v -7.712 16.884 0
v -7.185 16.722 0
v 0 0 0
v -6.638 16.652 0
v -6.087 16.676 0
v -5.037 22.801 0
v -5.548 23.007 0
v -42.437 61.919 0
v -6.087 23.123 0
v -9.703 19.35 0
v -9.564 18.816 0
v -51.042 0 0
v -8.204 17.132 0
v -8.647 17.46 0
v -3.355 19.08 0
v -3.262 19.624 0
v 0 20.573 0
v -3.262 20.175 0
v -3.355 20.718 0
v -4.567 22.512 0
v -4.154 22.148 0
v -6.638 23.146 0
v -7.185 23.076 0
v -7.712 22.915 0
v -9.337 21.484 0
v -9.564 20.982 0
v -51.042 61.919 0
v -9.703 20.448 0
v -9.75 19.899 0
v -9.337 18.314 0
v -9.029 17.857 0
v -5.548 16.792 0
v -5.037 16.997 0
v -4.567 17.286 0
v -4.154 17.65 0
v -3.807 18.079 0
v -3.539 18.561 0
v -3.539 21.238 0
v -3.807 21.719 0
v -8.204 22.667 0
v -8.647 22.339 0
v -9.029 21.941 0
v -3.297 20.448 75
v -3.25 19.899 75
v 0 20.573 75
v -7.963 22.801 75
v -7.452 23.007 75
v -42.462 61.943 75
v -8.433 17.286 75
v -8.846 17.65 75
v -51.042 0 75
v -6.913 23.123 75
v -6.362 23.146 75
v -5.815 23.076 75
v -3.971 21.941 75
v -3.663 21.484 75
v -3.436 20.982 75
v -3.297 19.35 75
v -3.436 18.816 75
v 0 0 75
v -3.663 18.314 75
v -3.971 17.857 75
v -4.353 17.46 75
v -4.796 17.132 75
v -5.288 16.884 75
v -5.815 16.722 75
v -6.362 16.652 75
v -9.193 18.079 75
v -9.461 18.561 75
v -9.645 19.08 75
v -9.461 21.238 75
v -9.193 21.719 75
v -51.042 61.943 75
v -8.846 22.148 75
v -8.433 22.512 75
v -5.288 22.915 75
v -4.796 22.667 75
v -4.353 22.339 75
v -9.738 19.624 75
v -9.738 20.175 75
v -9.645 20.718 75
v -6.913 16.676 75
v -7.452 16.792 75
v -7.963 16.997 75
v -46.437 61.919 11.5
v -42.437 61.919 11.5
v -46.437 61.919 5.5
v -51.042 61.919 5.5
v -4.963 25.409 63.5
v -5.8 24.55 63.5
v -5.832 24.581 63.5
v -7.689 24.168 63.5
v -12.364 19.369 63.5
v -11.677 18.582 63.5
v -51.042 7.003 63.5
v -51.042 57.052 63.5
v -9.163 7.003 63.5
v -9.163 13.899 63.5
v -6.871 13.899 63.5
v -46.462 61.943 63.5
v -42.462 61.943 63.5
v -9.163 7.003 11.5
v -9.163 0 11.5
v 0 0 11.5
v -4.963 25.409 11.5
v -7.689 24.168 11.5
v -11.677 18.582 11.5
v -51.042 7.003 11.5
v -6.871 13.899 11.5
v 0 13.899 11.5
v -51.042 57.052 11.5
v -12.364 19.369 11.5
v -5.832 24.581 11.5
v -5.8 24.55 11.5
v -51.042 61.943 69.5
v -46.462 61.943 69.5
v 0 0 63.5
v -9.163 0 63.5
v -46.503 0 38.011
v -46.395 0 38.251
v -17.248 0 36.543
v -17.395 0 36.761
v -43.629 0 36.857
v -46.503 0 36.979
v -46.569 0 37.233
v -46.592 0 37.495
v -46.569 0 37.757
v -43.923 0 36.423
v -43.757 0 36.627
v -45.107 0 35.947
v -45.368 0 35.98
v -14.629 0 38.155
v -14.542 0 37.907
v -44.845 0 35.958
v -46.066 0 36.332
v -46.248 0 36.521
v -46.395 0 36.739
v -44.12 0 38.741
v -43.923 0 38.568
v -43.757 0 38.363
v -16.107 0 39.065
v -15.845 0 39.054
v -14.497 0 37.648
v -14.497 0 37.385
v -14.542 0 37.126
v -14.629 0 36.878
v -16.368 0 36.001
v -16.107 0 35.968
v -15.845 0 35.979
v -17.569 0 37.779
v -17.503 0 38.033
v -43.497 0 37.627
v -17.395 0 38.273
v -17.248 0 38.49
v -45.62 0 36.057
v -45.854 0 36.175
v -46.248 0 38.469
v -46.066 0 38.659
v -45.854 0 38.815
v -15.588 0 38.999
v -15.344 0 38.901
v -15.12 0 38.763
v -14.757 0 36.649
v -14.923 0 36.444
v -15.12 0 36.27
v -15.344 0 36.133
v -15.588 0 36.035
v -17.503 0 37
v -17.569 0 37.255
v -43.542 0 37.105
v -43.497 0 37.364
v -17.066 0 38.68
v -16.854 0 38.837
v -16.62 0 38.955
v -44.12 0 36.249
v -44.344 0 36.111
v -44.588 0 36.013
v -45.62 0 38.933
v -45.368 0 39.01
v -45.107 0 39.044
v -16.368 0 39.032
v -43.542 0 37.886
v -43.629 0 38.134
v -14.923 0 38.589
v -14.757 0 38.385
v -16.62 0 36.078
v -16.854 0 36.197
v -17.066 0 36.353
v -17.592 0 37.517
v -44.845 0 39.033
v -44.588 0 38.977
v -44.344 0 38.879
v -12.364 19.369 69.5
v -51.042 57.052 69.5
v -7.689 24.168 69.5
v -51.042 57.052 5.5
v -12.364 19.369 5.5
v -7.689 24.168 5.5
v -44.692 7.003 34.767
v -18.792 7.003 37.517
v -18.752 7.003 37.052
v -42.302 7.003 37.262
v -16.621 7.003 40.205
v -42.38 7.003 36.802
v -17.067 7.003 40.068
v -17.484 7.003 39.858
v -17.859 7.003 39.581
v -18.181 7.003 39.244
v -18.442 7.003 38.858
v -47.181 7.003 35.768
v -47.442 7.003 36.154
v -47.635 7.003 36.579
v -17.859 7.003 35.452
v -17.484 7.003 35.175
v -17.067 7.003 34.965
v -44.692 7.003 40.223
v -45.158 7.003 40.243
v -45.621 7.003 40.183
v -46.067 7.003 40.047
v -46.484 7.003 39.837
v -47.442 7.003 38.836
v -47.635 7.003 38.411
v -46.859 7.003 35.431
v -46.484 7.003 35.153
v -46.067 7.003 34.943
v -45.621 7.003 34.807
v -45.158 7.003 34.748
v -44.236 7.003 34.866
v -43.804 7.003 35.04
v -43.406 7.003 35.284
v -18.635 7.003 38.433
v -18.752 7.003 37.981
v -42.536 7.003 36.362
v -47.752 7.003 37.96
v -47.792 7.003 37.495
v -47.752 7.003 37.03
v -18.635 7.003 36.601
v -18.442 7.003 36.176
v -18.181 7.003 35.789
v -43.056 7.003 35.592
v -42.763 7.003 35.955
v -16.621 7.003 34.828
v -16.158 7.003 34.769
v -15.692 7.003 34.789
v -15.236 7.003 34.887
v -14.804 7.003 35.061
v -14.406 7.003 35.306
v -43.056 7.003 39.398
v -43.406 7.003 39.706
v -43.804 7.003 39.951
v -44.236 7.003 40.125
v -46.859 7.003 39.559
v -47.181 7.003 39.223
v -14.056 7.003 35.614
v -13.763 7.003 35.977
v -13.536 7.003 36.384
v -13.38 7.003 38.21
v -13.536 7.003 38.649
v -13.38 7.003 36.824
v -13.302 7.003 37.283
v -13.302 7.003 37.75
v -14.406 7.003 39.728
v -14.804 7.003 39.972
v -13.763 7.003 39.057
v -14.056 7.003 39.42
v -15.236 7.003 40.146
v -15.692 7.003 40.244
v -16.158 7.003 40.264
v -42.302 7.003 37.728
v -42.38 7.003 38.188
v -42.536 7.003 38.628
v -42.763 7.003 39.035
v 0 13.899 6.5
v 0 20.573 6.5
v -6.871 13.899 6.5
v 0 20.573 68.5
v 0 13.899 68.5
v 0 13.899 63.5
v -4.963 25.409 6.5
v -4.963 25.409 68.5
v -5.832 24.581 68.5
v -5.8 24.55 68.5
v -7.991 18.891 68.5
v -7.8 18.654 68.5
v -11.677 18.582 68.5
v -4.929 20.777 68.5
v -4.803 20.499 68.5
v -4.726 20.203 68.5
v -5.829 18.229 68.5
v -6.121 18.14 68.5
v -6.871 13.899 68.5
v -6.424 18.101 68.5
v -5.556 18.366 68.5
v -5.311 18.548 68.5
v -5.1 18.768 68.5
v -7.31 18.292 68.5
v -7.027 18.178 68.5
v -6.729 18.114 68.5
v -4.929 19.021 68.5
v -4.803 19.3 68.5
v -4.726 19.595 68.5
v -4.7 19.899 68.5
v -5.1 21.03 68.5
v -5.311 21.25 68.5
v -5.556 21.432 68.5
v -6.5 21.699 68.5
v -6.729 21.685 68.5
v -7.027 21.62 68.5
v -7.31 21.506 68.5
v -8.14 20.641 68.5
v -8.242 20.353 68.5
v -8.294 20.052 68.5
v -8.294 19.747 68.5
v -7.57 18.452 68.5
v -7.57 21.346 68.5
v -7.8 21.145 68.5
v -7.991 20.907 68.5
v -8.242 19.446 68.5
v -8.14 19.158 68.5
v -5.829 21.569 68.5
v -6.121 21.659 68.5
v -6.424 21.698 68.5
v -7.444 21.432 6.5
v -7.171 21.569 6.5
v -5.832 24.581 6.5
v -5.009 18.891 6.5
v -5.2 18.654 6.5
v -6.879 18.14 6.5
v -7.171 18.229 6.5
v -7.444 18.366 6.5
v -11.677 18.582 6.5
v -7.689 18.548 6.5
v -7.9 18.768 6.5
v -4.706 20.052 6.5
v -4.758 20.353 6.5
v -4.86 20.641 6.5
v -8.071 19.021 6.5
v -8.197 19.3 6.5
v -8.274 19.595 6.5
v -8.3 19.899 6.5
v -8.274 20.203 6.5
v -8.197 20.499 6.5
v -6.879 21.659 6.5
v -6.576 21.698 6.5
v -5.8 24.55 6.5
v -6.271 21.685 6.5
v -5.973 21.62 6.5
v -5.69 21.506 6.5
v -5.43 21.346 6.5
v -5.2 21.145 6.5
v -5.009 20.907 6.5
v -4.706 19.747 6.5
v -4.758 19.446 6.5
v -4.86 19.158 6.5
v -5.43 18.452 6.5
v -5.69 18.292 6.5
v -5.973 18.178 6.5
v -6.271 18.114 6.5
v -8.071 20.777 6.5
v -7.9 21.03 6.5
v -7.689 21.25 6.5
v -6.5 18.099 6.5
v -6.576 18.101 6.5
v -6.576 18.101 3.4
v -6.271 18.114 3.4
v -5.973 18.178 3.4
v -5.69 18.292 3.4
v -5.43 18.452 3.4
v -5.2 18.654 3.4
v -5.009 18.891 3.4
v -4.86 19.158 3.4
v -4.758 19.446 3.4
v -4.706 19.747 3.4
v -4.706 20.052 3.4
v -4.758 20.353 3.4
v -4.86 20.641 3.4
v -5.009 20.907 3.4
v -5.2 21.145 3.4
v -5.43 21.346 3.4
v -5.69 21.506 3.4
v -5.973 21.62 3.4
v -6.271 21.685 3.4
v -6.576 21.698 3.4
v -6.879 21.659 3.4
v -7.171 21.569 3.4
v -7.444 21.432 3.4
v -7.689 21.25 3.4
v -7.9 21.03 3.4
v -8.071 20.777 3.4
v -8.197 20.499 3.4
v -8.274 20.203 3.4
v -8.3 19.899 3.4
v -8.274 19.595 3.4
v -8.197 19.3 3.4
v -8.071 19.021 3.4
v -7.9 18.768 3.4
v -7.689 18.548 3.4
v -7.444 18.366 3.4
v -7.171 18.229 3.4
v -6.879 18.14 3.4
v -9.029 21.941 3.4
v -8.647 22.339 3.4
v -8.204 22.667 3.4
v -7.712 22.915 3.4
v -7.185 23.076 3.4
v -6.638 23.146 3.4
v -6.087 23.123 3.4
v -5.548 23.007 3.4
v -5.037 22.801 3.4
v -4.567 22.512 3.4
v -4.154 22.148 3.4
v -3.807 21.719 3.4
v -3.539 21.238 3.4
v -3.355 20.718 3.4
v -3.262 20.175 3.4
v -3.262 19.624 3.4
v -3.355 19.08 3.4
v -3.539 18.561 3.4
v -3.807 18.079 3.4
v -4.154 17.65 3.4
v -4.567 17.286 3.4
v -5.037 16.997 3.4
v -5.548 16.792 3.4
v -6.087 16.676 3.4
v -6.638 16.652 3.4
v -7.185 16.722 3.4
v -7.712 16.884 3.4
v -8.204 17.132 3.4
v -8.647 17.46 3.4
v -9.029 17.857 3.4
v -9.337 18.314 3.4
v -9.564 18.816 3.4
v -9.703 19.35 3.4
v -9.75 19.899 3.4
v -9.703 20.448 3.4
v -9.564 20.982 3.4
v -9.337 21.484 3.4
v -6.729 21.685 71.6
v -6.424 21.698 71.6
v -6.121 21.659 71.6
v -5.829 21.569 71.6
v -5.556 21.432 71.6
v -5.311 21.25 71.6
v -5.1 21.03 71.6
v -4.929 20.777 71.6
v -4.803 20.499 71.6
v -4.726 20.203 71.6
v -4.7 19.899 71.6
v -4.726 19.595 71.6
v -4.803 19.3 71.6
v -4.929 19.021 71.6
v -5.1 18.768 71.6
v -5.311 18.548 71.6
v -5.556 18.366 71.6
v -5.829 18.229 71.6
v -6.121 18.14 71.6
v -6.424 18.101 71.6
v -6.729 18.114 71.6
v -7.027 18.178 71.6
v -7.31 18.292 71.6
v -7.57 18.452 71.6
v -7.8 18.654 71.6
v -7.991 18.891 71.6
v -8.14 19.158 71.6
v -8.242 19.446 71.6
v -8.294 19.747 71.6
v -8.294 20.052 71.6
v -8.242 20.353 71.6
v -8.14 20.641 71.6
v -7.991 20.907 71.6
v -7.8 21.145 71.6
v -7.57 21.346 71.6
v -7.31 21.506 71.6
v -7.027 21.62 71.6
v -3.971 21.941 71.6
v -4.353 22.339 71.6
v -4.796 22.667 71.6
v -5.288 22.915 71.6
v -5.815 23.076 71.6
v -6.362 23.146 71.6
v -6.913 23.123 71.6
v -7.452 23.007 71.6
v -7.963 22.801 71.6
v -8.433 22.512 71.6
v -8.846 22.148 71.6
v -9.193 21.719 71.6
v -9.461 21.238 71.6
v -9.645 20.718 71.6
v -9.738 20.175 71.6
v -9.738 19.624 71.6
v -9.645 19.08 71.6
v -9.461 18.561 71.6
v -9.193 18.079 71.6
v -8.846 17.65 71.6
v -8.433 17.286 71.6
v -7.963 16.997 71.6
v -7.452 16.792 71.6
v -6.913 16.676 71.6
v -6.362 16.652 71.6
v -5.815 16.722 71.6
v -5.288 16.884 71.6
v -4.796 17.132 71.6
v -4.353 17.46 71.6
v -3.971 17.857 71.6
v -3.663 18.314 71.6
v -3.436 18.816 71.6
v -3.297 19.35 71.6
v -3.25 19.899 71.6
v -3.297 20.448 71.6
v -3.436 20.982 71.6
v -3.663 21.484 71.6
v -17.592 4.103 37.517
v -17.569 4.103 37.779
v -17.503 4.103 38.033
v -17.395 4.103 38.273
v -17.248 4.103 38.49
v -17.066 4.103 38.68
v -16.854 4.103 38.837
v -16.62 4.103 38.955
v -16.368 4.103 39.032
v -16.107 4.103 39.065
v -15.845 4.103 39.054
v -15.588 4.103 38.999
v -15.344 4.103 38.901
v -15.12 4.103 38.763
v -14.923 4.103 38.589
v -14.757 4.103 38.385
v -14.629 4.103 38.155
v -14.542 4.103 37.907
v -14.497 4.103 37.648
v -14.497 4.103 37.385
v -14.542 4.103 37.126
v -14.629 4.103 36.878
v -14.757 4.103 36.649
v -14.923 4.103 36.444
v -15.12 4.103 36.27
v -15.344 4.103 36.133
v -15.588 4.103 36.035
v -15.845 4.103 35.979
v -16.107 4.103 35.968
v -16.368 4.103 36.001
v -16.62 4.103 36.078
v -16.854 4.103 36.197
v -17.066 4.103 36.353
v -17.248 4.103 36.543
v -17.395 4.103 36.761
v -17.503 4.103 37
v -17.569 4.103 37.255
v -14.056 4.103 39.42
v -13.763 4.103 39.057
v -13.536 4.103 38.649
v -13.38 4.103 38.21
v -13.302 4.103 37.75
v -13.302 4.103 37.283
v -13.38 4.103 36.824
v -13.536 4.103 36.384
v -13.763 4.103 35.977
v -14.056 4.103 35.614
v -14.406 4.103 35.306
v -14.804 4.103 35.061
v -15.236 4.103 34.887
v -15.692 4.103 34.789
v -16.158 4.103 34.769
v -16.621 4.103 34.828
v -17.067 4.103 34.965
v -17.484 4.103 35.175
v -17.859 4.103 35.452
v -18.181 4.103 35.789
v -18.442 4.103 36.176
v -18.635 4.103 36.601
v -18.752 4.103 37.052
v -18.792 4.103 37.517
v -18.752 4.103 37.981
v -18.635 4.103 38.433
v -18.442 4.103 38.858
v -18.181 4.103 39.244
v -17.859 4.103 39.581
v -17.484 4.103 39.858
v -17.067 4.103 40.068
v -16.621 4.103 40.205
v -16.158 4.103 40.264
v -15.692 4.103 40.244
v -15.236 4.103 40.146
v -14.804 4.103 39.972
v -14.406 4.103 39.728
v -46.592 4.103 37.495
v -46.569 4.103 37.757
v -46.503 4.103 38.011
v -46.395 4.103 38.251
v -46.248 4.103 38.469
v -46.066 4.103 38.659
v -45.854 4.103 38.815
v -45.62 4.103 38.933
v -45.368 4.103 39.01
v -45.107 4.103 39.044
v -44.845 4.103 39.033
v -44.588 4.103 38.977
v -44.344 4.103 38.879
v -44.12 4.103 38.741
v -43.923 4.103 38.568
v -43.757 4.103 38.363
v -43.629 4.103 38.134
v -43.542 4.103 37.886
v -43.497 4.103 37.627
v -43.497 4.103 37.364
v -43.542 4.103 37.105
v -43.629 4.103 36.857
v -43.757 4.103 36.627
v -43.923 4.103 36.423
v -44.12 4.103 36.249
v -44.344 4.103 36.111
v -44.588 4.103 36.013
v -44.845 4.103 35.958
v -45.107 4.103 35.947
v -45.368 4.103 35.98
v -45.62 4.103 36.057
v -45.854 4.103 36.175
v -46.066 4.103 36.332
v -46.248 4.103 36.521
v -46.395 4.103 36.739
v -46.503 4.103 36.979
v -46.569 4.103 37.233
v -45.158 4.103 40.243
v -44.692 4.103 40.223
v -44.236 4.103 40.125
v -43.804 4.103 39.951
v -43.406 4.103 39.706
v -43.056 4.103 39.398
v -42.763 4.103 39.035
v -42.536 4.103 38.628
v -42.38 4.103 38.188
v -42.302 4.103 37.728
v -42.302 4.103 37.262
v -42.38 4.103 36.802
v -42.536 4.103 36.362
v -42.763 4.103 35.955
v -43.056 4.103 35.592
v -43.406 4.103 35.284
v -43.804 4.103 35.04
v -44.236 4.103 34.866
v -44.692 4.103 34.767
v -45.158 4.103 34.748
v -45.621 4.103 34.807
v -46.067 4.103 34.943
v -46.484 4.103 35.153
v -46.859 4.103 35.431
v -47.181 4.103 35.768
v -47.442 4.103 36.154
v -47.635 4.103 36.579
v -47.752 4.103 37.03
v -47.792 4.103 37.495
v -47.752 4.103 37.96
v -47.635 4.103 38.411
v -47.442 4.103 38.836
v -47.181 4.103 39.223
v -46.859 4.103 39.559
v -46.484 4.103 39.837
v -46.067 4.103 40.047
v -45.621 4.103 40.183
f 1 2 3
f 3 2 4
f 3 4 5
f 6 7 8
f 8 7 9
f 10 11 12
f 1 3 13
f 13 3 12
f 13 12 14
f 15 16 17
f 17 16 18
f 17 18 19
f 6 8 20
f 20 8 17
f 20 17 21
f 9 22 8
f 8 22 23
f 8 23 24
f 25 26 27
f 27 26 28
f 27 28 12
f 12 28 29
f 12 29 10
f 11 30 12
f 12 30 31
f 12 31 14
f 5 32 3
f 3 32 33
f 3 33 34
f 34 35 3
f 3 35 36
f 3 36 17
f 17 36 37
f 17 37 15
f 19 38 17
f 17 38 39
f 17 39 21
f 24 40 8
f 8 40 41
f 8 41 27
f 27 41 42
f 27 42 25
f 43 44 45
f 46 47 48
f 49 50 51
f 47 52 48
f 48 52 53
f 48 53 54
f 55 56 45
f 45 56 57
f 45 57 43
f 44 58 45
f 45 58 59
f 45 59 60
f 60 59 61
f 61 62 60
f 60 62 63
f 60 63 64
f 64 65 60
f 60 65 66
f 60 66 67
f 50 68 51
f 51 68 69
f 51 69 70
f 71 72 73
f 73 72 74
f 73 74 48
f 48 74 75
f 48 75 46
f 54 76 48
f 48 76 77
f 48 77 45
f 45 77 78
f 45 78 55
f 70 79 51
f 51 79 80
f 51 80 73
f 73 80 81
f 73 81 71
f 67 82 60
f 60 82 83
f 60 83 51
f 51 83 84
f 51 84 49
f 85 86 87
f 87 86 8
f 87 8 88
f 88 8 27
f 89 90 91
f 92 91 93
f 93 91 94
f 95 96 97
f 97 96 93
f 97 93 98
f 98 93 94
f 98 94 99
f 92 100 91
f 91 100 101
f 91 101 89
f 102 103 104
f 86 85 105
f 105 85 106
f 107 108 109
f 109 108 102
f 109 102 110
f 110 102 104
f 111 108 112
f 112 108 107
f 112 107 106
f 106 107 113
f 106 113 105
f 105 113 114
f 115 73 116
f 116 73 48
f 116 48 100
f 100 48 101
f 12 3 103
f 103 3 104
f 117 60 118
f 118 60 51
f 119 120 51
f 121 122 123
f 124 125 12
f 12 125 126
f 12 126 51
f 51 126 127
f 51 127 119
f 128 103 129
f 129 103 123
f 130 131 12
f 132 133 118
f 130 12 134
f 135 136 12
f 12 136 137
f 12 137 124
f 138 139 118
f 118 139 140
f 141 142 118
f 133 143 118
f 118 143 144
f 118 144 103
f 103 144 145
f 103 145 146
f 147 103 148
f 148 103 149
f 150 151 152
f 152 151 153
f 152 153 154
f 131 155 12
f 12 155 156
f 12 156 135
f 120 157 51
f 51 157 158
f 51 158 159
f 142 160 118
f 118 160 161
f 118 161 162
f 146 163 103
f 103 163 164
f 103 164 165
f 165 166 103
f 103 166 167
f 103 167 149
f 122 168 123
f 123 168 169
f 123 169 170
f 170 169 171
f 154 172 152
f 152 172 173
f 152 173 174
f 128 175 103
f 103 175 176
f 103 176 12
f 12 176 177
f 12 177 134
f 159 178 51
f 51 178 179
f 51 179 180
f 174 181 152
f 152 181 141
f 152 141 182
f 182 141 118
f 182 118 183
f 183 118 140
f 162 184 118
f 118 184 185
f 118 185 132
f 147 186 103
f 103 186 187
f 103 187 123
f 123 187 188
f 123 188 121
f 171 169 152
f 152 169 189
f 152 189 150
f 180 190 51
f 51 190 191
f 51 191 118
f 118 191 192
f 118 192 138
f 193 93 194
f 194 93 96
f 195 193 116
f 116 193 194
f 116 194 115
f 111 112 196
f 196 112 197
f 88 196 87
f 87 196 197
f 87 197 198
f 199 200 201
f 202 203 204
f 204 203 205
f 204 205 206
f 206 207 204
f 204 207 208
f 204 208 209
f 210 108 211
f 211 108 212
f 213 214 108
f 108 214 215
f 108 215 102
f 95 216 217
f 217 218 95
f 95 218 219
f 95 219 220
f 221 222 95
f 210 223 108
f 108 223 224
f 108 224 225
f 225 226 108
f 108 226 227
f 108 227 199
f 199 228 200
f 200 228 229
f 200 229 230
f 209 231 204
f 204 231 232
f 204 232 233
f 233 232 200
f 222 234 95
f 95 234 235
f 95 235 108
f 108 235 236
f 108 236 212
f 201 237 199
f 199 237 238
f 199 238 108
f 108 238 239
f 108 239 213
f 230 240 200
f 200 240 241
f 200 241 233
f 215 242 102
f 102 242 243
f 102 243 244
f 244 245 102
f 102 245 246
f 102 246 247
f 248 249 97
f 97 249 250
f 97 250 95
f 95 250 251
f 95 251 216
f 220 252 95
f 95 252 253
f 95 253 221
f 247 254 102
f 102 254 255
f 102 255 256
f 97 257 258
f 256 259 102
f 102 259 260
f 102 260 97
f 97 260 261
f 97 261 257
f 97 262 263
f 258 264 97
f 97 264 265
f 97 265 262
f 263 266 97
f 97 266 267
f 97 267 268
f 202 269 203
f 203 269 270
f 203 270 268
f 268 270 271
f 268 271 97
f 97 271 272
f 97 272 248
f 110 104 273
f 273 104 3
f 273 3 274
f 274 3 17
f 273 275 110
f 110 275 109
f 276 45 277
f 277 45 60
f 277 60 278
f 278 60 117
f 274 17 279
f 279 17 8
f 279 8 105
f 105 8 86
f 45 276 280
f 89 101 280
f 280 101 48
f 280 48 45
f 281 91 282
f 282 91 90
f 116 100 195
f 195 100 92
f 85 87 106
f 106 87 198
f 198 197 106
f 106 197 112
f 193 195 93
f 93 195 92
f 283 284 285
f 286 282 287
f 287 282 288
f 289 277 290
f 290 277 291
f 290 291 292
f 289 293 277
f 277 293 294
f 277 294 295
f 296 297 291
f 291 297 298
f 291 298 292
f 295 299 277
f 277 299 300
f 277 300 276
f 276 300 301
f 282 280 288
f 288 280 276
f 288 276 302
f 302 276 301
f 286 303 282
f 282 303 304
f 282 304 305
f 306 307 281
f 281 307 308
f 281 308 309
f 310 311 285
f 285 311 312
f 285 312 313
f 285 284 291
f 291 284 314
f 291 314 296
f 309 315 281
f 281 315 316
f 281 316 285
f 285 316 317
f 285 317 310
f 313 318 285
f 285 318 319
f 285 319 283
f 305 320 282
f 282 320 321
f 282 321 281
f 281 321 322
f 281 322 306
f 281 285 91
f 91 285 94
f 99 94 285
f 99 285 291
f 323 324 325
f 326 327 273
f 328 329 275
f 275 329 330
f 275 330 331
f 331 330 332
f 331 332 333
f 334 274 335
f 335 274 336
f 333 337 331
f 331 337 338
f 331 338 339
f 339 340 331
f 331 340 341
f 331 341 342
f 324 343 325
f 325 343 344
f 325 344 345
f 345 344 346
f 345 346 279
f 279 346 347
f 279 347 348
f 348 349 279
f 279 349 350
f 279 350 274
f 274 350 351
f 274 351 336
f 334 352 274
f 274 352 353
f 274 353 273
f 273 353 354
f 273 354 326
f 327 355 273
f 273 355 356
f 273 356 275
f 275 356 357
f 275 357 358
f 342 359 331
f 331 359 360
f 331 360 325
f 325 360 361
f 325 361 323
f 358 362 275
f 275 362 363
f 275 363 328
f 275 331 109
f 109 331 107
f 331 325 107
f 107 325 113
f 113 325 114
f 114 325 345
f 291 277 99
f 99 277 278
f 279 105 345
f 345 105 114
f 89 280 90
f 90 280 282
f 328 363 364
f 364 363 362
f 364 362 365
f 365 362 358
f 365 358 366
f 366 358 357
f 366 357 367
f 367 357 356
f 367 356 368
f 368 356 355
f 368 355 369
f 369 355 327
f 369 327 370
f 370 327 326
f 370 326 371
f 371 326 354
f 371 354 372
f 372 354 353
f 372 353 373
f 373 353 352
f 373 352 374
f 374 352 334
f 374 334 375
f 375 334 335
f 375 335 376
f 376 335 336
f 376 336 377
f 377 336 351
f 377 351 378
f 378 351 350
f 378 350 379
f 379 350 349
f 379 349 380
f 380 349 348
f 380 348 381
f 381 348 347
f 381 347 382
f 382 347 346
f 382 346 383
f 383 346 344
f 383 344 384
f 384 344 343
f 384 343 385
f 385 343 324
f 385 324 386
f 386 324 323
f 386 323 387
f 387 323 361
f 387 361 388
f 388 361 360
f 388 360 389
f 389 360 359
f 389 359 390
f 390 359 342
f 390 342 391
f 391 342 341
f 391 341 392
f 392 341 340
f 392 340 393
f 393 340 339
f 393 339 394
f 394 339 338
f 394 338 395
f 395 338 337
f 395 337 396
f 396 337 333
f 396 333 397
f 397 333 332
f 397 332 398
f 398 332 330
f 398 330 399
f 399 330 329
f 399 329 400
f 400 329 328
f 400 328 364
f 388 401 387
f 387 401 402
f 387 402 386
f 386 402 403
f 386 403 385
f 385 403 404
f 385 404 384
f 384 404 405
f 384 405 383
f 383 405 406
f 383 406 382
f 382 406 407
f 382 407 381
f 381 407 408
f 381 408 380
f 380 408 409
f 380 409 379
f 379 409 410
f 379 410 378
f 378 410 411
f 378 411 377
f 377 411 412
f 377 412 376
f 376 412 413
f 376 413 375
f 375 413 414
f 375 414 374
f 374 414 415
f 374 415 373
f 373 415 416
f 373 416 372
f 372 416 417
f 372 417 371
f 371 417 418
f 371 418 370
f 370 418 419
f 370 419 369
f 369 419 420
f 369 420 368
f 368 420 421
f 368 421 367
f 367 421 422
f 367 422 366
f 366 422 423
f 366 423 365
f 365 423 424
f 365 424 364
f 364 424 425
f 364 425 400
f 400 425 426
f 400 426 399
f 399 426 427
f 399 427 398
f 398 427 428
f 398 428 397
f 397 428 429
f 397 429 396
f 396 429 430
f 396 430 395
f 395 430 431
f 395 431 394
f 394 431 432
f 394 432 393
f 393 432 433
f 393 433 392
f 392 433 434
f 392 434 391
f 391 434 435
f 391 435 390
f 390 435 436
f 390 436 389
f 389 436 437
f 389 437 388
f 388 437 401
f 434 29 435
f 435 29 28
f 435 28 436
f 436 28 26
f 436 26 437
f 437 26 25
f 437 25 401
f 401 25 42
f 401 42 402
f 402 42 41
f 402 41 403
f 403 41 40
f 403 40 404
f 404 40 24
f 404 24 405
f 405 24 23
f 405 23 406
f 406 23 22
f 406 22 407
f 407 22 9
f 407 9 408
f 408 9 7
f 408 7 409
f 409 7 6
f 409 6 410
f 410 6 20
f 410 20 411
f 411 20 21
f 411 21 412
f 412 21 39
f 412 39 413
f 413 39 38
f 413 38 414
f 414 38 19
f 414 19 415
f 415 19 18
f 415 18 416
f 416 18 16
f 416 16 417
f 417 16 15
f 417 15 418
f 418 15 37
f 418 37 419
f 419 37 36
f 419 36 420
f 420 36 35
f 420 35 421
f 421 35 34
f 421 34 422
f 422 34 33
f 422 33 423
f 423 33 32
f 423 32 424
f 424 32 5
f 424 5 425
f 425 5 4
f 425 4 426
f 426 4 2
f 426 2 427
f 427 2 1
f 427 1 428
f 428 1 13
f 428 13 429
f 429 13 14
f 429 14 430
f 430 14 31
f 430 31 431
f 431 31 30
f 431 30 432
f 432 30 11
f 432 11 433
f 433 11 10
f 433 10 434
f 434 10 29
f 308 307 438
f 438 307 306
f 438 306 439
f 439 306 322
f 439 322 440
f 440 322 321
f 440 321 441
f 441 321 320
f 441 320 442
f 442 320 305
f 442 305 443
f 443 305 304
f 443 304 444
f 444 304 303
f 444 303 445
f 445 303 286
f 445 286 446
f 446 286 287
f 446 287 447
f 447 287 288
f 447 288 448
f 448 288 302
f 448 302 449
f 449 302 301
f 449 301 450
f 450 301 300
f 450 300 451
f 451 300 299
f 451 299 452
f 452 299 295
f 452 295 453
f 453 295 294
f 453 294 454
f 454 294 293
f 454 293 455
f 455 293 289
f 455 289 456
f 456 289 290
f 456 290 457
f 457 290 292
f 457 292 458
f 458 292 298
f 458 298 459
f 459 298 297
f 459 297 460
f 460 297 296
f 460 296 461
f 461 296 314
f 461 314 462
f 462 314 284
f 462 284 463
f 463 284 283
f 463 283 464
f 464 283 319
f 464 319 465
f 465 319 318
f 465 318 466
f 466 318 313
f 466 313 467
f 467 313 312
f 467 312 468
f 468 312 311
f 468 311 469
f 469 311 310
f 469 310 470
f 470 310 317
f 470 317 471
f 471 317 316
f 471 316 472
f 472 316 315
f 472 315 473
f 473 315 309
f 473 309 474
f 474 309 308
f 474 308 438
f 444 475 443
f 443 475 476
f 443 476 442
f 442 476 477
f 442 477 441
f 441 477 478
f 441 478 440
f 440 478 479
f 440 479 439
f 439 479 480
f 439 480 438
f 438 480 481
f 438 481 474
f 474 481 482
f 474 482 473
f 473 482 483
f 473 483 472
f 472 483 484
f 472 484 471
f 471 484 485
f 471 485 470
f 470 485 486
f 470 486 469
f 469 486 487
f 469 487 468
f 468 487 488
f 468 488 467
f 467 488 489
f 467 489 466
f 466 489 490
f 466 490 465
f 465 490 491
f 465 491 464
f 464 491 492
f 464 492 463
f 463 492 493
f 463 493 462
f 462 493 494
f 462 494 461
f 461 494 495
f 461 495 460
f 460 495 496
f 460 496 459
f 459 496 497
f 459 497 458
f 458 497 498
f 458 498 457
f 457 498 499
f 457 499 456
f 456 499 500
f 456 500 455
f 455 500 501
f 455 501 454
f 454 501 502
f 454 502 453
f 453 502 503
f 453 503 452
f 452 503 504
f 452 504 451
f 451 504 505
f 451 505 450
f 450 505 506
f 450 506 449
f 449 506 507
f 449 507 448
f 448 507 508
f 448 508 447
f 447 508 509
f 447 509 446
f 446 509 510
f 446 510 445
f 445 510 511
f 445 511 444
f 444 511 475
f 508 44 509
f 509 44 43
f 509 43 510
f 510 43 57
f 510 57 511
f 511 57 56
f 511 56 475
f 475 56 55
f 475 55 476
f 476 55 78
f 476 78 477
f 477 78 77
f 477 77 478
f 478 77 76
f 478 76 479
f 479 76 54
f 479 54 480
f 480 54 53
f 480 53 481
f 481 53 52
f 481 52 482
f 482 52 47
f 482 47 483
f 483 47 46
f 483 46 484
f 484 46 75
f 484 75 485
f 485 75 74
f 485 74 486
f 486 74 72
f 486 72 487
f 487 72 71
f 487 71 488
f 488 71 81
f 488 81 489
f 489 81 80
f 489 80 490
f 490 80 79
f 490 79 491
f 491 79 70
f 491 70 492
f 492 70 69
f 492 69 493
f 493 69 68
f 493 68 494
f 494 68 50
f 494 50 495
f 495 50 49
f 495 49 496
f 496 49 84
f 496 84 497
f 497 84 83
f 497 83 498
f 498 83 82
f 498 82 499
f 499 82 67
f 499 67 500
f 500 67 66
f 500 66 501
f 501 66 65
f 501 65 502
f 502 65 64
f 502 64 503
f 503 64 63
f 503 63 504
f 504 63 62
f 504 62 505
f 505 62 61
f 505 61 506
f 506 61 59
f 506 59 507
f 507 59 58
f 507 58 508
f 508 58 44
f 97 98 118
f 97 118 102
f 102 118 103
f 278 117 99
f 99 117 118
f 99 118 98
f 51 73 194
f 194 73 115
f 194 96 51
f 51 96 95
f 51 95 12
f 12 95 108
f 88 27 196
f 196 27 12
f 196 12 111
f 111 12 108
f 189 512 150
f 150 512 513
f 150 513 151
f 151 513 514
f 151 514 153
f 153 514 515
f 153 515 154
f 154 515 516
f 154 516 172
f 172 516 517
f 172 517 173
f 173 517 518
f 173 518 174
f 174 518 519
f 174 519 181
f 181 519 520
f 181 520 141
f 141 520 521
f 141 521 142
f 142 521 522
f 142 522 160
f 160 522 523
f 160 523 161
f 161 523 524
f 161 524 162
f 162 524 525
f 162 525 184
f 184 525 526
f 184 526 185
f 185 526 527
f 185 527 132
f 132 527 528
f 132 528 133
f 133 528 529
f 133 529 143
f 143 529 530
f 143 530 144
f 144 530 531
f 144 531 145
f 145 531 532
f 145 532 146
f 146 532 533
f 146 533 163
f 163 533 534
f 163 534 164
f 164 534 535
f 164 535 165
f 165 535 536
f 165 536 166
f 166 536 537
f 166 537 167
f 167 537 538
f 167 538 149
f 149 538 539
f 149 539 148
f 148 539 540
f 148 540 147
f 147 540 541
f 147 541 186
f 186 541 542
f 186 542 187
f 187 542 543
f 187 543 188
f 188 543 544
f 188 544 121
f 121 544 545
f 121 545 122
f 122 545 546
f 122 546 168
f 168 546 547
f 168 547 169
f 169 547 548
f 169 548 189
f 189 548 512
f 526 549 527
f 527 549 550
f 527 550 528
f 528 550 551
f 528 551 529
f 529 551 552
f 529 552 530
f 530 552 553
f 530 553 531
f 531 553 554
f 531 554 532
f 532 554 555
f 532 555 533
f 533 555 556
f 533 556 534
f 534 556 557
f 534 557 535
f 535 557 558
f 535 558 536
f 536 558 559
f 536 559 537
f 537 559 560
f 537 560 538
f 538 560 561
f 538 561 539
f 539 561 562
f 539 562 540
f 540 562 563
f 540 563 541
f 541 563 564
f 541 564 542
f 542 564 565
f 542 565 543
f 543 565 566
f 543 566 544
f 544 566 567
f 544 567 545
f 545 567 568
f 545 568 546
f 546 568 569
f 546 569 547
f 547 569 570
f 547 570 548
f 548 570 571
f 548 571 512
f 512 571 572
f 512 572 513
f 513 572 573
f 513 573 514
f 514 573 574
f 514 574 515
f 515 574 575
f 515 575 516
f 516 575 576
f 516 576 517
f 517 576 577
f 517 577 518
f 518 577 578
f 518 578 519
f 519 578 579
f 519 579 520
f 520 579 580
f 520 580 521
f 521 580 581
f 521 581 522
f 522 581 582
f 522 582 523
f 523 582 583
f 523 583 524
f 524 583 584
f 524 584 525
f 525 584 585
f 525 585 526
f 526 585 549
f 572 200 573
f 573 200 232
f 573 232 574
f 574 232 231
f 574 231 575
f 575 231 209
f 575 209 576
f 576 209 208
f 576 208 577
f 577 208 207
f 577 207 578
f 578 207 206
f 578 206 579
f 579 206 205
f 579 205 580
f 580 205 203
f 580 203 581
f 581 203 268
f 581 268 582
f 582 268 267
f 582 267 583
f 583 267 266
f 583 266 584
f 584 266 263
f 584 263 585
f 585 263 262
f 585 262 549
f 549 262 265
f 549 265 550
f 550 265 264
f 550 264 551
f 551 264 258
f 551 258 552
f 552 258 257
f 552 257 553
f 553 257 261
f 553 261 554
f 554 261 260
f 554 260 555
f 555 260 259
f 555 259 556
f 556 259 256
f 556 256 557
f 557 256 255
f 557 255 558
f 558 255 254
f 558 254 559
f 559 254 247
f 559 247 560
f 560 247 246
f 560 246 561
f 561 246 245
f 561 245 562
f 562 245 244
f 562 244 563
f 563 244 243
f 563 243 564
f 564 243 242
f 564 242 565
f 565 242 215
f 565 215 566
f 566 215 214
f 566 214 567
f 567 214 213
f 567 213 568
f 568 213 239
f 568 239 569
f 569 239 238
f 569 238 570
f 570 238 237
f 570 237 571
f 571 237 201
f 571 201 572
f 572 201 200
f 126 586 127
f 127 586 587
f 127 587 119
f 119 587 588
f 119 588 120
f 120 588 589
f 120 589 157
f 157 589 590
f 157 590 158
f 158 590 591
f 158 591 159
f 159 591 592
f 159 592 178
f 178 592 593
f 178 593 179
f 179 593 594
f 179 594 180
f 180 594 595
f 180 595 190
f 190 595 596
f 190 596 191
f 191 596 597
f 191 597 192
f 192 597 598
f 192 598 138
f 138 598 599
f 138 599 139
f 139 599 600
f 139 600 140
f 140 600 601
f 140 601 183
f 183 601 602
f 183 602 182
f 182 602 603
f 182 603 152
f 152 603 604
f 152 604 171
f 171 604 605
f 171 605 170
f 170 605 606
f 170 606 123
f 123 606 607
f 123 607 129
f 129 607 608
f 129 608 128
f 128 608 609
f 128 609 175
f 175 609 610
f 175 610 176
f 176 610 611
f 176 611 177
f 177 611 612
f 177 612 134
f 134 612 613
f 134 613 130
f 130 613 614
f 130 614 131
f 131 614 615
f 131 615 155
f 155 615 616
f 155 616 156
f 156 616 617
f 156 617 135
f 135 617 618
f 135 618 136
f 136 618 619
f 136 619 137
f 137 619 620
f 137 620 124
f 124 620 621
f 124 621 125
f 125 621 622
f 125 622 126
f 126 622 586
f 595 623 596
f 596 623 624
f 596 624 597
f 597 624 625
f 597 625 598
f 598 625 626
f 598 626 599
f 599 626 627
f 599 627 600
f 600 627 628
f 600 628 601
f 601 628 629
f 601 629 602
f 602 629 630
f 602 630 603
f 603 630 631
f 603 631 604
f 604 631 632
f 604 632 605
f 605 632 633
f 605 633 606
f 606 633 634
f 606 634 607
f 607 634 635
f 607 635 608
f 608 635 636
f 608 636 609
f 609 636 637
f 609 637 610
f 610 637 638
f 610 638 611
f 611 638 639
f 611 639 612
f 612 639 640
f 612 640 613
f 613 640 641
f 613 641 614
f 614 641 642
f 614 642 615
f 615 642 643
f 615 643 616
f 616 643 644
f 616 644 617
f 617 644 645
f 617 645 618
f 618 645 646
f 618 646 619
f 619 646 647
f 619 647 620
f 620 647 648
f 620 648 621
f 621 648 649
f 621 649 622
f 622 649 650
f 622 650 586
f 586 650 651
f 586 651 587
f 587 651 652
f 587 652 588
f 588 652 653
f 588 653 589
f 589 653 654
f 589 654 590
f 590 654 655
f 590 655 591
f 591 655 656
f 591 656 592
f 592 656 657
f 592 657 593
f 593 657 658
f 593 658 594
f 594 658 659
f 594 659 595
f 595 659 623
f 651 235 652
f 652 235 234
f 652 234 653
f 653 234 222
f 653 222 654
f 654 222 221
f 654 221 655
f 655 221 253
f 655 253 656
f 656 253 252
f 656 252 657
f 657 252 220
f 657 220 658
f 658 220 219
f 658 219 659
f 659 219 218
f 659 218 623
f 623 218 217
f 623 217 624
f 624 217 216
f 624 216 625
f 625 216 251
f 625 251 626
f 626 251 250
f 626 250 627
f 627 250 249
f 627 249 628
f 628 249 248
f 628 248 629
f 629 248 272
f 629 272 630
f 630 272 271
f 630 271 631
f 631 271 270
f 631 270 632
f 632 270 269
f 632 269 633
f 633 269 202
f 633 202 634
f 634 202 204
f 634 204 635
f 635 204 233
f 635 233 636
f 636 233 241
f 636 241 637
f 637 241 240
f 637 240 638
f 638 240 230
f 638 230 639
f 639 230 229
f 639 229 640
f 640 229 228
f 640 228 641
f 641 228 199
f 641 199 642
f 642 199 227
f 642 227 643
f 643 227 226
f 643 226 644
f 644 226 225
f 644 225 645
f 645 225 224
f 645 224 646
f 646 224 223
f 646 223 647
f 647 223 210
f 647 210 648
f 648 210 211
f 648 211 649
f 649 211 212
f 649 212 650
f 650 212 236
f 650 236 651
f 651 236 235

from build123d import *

# Parameters (mm, degrees)
BOSS_EXTRU_1_DEPTH                                 = 5.5
ESQUISSE1_3_R                                      = 1.8
BOSS_EXTRU_2_DEPTH                                 = 6.5
BOSS_EXTRU_3_DEPTH                                 = 11.5
ESQUISSE1_6_W                                      = 41.878391759
ESQUISSE1_6_H                                      = 7.003105655
BOSS_EXTRU_4_DEPTH                                 = 63.5
CHAMBRAGE_POUR_VIS_SIX_PANS_CREUX_M2_5_D           = 3.1
CHAMBRAGE_POUR_VIS_SIX_PANS_CREUX_M2_5_CBORE_D     = 5.5
CHAMBRAGE_POUR_VIS_SIX_PANS_CREUX_M2_5_CBORE_DEPTH = 2.9
CHAMBRAGE_POUR_VIS_SIX_PANS_CREUX_M31_D            = 3.6
CHAMBRAGE_POUR_VIS_SIX_PANS_CREUX_M31_CBORE_D      = 6.5
CHAMBRAGE_POUR_VIS_SIX_PANS_CREUX_M31_CBORE_DEPTH  = 3.4


with BuildPart() as part:
    # Esquisse1 → Boss.-Extru.1 (new body)
    with BuildSketch(Plane.XY):
        Polygon((-51.041668631, 61.918561392), (-51.041668631, 57.051835463), (-12.364240457, 19.369216184), (-7.689286801, 24.167587096), (-46.436874542, 61.918561392), align=None)
    extrude(amount=BOSS_EXTRU_1_DEPTH)



with BuildPart() as body_2:
    # Esquisse1<3> → Boss.-Extru.2 (new body)
    with BuildSketch(Plane.XY):
        Polygon((-6.8709698, 13.899199983), (0, 13.899199983), (0, 20.573191179), (-4.963123823, 25.408660192), (-5.800119712, 24.549567884), (-5.832093395, 24.580719183), (-11.676946527, 18.581563828), align=None)
        with Locations((-6.5, 19.899199983)):
            Circle(ESQUISSE1_3_R, mode=Mode.SUBTRACT)
    extrude(amount=BOSS_EXTRU_2_DEPTH)


with BuildPart() as part_1:
    add(part.part)

    add(body_2.part)  # Boss.-Extru.3 merges body 2
    # Esquisse1<5> → Boss.-Extru.3 (add)
    with BuildSketch(Plane.XY):
        Polygon((-9.163276872, 0), (0, 0), (0, 13.899199983), (-6.8709698, 13.899199983), (-11.676946527, 18.581563828), (-5.832093395, 24.580719183), (-5.800119712, 24.549567884), (-4.963123823, 25.408660192), (-42.436874542, 61.918561392), (-46.436874542, 61.918561392), (-7.689286801, 24.167587096), (-12.364240457, 19.369216184), (-51.041668631, 57.051835463), (-51.041668631, 7.003105655), (-9.163276872, 7.003105655), align=None)
    extrude(amount=BOSS_EXTRU_3_DEPTH)

    # Esquisse1<6> → Boss.-Extru.4 (add)
    with BuildSketch(Plane.XY):
        with Locations((-30.102472752, 3.501552828)):
            Rectangle(ESQUISSE1_6_W, ESQUISSE1_6_H)
    extrude(amount=BOSS_EXTRU_4_DEPTH)

    # Symétrie2: part across plane


with BuildPart() as part_2:
    add(part_1.part)
    add(part_1.part.mirror(Plane.XY.offset(37.5)))

    # Chambrage pour vis à six pans creux M2.51 (through all)
    with Locations(Plane(origin=(0, 7.003105655, 0), x_dir=(1, 0, 0), z_dir=(0, 1, 0))):
        with Locations((-45.041668631, -37.5), (-16.041668631, -37.5)):
            CounterBoreHole(CHAMBRAGE_POUR_VIS_SIX_PANS_CREUX_M2_5_D / 2, CHAMBRAGE_POUR_VIS_SIX_PANS_CREUX_M2_5_CBORE_D / 2, CHAMBRAGE_POUR_VIS_SIX_PANS_CREUX_M2_5_CBORE_DEPTH)

    # Chambrage pour vis à six pans creux M31 (through all)
    with Locations(Plane(origin=(0, 0, 0), x_dir=(-1, 0, 0), z_dir=(0, 0, -1))):
        with Locations((6.5, 19.899199983)):
            chambrage_pour_vis_six_pans_creux_m31 = CounterBoreHole(CHAMBRAGE_POUR_VIS_SIX_PANS_CREUX_M31_D / 2, CHAMBRAGE_POUR_VIS_SIX_PANS_CREUX_M31_CBORE_D / 2, CHAMBRAGE_POUR_VIS_SIX_PANS_CREUX_M31_CBORE_DEPTH)

    # Symétrie3: Chambrage pour vis à six pans creux M31 across plane
    add(chambrage_pour_vis_six_pans_creux_m31.mirror(Plane.XY.offset(37.5)), mode=Mode.SUBTRACT)


solid = part_2.part
